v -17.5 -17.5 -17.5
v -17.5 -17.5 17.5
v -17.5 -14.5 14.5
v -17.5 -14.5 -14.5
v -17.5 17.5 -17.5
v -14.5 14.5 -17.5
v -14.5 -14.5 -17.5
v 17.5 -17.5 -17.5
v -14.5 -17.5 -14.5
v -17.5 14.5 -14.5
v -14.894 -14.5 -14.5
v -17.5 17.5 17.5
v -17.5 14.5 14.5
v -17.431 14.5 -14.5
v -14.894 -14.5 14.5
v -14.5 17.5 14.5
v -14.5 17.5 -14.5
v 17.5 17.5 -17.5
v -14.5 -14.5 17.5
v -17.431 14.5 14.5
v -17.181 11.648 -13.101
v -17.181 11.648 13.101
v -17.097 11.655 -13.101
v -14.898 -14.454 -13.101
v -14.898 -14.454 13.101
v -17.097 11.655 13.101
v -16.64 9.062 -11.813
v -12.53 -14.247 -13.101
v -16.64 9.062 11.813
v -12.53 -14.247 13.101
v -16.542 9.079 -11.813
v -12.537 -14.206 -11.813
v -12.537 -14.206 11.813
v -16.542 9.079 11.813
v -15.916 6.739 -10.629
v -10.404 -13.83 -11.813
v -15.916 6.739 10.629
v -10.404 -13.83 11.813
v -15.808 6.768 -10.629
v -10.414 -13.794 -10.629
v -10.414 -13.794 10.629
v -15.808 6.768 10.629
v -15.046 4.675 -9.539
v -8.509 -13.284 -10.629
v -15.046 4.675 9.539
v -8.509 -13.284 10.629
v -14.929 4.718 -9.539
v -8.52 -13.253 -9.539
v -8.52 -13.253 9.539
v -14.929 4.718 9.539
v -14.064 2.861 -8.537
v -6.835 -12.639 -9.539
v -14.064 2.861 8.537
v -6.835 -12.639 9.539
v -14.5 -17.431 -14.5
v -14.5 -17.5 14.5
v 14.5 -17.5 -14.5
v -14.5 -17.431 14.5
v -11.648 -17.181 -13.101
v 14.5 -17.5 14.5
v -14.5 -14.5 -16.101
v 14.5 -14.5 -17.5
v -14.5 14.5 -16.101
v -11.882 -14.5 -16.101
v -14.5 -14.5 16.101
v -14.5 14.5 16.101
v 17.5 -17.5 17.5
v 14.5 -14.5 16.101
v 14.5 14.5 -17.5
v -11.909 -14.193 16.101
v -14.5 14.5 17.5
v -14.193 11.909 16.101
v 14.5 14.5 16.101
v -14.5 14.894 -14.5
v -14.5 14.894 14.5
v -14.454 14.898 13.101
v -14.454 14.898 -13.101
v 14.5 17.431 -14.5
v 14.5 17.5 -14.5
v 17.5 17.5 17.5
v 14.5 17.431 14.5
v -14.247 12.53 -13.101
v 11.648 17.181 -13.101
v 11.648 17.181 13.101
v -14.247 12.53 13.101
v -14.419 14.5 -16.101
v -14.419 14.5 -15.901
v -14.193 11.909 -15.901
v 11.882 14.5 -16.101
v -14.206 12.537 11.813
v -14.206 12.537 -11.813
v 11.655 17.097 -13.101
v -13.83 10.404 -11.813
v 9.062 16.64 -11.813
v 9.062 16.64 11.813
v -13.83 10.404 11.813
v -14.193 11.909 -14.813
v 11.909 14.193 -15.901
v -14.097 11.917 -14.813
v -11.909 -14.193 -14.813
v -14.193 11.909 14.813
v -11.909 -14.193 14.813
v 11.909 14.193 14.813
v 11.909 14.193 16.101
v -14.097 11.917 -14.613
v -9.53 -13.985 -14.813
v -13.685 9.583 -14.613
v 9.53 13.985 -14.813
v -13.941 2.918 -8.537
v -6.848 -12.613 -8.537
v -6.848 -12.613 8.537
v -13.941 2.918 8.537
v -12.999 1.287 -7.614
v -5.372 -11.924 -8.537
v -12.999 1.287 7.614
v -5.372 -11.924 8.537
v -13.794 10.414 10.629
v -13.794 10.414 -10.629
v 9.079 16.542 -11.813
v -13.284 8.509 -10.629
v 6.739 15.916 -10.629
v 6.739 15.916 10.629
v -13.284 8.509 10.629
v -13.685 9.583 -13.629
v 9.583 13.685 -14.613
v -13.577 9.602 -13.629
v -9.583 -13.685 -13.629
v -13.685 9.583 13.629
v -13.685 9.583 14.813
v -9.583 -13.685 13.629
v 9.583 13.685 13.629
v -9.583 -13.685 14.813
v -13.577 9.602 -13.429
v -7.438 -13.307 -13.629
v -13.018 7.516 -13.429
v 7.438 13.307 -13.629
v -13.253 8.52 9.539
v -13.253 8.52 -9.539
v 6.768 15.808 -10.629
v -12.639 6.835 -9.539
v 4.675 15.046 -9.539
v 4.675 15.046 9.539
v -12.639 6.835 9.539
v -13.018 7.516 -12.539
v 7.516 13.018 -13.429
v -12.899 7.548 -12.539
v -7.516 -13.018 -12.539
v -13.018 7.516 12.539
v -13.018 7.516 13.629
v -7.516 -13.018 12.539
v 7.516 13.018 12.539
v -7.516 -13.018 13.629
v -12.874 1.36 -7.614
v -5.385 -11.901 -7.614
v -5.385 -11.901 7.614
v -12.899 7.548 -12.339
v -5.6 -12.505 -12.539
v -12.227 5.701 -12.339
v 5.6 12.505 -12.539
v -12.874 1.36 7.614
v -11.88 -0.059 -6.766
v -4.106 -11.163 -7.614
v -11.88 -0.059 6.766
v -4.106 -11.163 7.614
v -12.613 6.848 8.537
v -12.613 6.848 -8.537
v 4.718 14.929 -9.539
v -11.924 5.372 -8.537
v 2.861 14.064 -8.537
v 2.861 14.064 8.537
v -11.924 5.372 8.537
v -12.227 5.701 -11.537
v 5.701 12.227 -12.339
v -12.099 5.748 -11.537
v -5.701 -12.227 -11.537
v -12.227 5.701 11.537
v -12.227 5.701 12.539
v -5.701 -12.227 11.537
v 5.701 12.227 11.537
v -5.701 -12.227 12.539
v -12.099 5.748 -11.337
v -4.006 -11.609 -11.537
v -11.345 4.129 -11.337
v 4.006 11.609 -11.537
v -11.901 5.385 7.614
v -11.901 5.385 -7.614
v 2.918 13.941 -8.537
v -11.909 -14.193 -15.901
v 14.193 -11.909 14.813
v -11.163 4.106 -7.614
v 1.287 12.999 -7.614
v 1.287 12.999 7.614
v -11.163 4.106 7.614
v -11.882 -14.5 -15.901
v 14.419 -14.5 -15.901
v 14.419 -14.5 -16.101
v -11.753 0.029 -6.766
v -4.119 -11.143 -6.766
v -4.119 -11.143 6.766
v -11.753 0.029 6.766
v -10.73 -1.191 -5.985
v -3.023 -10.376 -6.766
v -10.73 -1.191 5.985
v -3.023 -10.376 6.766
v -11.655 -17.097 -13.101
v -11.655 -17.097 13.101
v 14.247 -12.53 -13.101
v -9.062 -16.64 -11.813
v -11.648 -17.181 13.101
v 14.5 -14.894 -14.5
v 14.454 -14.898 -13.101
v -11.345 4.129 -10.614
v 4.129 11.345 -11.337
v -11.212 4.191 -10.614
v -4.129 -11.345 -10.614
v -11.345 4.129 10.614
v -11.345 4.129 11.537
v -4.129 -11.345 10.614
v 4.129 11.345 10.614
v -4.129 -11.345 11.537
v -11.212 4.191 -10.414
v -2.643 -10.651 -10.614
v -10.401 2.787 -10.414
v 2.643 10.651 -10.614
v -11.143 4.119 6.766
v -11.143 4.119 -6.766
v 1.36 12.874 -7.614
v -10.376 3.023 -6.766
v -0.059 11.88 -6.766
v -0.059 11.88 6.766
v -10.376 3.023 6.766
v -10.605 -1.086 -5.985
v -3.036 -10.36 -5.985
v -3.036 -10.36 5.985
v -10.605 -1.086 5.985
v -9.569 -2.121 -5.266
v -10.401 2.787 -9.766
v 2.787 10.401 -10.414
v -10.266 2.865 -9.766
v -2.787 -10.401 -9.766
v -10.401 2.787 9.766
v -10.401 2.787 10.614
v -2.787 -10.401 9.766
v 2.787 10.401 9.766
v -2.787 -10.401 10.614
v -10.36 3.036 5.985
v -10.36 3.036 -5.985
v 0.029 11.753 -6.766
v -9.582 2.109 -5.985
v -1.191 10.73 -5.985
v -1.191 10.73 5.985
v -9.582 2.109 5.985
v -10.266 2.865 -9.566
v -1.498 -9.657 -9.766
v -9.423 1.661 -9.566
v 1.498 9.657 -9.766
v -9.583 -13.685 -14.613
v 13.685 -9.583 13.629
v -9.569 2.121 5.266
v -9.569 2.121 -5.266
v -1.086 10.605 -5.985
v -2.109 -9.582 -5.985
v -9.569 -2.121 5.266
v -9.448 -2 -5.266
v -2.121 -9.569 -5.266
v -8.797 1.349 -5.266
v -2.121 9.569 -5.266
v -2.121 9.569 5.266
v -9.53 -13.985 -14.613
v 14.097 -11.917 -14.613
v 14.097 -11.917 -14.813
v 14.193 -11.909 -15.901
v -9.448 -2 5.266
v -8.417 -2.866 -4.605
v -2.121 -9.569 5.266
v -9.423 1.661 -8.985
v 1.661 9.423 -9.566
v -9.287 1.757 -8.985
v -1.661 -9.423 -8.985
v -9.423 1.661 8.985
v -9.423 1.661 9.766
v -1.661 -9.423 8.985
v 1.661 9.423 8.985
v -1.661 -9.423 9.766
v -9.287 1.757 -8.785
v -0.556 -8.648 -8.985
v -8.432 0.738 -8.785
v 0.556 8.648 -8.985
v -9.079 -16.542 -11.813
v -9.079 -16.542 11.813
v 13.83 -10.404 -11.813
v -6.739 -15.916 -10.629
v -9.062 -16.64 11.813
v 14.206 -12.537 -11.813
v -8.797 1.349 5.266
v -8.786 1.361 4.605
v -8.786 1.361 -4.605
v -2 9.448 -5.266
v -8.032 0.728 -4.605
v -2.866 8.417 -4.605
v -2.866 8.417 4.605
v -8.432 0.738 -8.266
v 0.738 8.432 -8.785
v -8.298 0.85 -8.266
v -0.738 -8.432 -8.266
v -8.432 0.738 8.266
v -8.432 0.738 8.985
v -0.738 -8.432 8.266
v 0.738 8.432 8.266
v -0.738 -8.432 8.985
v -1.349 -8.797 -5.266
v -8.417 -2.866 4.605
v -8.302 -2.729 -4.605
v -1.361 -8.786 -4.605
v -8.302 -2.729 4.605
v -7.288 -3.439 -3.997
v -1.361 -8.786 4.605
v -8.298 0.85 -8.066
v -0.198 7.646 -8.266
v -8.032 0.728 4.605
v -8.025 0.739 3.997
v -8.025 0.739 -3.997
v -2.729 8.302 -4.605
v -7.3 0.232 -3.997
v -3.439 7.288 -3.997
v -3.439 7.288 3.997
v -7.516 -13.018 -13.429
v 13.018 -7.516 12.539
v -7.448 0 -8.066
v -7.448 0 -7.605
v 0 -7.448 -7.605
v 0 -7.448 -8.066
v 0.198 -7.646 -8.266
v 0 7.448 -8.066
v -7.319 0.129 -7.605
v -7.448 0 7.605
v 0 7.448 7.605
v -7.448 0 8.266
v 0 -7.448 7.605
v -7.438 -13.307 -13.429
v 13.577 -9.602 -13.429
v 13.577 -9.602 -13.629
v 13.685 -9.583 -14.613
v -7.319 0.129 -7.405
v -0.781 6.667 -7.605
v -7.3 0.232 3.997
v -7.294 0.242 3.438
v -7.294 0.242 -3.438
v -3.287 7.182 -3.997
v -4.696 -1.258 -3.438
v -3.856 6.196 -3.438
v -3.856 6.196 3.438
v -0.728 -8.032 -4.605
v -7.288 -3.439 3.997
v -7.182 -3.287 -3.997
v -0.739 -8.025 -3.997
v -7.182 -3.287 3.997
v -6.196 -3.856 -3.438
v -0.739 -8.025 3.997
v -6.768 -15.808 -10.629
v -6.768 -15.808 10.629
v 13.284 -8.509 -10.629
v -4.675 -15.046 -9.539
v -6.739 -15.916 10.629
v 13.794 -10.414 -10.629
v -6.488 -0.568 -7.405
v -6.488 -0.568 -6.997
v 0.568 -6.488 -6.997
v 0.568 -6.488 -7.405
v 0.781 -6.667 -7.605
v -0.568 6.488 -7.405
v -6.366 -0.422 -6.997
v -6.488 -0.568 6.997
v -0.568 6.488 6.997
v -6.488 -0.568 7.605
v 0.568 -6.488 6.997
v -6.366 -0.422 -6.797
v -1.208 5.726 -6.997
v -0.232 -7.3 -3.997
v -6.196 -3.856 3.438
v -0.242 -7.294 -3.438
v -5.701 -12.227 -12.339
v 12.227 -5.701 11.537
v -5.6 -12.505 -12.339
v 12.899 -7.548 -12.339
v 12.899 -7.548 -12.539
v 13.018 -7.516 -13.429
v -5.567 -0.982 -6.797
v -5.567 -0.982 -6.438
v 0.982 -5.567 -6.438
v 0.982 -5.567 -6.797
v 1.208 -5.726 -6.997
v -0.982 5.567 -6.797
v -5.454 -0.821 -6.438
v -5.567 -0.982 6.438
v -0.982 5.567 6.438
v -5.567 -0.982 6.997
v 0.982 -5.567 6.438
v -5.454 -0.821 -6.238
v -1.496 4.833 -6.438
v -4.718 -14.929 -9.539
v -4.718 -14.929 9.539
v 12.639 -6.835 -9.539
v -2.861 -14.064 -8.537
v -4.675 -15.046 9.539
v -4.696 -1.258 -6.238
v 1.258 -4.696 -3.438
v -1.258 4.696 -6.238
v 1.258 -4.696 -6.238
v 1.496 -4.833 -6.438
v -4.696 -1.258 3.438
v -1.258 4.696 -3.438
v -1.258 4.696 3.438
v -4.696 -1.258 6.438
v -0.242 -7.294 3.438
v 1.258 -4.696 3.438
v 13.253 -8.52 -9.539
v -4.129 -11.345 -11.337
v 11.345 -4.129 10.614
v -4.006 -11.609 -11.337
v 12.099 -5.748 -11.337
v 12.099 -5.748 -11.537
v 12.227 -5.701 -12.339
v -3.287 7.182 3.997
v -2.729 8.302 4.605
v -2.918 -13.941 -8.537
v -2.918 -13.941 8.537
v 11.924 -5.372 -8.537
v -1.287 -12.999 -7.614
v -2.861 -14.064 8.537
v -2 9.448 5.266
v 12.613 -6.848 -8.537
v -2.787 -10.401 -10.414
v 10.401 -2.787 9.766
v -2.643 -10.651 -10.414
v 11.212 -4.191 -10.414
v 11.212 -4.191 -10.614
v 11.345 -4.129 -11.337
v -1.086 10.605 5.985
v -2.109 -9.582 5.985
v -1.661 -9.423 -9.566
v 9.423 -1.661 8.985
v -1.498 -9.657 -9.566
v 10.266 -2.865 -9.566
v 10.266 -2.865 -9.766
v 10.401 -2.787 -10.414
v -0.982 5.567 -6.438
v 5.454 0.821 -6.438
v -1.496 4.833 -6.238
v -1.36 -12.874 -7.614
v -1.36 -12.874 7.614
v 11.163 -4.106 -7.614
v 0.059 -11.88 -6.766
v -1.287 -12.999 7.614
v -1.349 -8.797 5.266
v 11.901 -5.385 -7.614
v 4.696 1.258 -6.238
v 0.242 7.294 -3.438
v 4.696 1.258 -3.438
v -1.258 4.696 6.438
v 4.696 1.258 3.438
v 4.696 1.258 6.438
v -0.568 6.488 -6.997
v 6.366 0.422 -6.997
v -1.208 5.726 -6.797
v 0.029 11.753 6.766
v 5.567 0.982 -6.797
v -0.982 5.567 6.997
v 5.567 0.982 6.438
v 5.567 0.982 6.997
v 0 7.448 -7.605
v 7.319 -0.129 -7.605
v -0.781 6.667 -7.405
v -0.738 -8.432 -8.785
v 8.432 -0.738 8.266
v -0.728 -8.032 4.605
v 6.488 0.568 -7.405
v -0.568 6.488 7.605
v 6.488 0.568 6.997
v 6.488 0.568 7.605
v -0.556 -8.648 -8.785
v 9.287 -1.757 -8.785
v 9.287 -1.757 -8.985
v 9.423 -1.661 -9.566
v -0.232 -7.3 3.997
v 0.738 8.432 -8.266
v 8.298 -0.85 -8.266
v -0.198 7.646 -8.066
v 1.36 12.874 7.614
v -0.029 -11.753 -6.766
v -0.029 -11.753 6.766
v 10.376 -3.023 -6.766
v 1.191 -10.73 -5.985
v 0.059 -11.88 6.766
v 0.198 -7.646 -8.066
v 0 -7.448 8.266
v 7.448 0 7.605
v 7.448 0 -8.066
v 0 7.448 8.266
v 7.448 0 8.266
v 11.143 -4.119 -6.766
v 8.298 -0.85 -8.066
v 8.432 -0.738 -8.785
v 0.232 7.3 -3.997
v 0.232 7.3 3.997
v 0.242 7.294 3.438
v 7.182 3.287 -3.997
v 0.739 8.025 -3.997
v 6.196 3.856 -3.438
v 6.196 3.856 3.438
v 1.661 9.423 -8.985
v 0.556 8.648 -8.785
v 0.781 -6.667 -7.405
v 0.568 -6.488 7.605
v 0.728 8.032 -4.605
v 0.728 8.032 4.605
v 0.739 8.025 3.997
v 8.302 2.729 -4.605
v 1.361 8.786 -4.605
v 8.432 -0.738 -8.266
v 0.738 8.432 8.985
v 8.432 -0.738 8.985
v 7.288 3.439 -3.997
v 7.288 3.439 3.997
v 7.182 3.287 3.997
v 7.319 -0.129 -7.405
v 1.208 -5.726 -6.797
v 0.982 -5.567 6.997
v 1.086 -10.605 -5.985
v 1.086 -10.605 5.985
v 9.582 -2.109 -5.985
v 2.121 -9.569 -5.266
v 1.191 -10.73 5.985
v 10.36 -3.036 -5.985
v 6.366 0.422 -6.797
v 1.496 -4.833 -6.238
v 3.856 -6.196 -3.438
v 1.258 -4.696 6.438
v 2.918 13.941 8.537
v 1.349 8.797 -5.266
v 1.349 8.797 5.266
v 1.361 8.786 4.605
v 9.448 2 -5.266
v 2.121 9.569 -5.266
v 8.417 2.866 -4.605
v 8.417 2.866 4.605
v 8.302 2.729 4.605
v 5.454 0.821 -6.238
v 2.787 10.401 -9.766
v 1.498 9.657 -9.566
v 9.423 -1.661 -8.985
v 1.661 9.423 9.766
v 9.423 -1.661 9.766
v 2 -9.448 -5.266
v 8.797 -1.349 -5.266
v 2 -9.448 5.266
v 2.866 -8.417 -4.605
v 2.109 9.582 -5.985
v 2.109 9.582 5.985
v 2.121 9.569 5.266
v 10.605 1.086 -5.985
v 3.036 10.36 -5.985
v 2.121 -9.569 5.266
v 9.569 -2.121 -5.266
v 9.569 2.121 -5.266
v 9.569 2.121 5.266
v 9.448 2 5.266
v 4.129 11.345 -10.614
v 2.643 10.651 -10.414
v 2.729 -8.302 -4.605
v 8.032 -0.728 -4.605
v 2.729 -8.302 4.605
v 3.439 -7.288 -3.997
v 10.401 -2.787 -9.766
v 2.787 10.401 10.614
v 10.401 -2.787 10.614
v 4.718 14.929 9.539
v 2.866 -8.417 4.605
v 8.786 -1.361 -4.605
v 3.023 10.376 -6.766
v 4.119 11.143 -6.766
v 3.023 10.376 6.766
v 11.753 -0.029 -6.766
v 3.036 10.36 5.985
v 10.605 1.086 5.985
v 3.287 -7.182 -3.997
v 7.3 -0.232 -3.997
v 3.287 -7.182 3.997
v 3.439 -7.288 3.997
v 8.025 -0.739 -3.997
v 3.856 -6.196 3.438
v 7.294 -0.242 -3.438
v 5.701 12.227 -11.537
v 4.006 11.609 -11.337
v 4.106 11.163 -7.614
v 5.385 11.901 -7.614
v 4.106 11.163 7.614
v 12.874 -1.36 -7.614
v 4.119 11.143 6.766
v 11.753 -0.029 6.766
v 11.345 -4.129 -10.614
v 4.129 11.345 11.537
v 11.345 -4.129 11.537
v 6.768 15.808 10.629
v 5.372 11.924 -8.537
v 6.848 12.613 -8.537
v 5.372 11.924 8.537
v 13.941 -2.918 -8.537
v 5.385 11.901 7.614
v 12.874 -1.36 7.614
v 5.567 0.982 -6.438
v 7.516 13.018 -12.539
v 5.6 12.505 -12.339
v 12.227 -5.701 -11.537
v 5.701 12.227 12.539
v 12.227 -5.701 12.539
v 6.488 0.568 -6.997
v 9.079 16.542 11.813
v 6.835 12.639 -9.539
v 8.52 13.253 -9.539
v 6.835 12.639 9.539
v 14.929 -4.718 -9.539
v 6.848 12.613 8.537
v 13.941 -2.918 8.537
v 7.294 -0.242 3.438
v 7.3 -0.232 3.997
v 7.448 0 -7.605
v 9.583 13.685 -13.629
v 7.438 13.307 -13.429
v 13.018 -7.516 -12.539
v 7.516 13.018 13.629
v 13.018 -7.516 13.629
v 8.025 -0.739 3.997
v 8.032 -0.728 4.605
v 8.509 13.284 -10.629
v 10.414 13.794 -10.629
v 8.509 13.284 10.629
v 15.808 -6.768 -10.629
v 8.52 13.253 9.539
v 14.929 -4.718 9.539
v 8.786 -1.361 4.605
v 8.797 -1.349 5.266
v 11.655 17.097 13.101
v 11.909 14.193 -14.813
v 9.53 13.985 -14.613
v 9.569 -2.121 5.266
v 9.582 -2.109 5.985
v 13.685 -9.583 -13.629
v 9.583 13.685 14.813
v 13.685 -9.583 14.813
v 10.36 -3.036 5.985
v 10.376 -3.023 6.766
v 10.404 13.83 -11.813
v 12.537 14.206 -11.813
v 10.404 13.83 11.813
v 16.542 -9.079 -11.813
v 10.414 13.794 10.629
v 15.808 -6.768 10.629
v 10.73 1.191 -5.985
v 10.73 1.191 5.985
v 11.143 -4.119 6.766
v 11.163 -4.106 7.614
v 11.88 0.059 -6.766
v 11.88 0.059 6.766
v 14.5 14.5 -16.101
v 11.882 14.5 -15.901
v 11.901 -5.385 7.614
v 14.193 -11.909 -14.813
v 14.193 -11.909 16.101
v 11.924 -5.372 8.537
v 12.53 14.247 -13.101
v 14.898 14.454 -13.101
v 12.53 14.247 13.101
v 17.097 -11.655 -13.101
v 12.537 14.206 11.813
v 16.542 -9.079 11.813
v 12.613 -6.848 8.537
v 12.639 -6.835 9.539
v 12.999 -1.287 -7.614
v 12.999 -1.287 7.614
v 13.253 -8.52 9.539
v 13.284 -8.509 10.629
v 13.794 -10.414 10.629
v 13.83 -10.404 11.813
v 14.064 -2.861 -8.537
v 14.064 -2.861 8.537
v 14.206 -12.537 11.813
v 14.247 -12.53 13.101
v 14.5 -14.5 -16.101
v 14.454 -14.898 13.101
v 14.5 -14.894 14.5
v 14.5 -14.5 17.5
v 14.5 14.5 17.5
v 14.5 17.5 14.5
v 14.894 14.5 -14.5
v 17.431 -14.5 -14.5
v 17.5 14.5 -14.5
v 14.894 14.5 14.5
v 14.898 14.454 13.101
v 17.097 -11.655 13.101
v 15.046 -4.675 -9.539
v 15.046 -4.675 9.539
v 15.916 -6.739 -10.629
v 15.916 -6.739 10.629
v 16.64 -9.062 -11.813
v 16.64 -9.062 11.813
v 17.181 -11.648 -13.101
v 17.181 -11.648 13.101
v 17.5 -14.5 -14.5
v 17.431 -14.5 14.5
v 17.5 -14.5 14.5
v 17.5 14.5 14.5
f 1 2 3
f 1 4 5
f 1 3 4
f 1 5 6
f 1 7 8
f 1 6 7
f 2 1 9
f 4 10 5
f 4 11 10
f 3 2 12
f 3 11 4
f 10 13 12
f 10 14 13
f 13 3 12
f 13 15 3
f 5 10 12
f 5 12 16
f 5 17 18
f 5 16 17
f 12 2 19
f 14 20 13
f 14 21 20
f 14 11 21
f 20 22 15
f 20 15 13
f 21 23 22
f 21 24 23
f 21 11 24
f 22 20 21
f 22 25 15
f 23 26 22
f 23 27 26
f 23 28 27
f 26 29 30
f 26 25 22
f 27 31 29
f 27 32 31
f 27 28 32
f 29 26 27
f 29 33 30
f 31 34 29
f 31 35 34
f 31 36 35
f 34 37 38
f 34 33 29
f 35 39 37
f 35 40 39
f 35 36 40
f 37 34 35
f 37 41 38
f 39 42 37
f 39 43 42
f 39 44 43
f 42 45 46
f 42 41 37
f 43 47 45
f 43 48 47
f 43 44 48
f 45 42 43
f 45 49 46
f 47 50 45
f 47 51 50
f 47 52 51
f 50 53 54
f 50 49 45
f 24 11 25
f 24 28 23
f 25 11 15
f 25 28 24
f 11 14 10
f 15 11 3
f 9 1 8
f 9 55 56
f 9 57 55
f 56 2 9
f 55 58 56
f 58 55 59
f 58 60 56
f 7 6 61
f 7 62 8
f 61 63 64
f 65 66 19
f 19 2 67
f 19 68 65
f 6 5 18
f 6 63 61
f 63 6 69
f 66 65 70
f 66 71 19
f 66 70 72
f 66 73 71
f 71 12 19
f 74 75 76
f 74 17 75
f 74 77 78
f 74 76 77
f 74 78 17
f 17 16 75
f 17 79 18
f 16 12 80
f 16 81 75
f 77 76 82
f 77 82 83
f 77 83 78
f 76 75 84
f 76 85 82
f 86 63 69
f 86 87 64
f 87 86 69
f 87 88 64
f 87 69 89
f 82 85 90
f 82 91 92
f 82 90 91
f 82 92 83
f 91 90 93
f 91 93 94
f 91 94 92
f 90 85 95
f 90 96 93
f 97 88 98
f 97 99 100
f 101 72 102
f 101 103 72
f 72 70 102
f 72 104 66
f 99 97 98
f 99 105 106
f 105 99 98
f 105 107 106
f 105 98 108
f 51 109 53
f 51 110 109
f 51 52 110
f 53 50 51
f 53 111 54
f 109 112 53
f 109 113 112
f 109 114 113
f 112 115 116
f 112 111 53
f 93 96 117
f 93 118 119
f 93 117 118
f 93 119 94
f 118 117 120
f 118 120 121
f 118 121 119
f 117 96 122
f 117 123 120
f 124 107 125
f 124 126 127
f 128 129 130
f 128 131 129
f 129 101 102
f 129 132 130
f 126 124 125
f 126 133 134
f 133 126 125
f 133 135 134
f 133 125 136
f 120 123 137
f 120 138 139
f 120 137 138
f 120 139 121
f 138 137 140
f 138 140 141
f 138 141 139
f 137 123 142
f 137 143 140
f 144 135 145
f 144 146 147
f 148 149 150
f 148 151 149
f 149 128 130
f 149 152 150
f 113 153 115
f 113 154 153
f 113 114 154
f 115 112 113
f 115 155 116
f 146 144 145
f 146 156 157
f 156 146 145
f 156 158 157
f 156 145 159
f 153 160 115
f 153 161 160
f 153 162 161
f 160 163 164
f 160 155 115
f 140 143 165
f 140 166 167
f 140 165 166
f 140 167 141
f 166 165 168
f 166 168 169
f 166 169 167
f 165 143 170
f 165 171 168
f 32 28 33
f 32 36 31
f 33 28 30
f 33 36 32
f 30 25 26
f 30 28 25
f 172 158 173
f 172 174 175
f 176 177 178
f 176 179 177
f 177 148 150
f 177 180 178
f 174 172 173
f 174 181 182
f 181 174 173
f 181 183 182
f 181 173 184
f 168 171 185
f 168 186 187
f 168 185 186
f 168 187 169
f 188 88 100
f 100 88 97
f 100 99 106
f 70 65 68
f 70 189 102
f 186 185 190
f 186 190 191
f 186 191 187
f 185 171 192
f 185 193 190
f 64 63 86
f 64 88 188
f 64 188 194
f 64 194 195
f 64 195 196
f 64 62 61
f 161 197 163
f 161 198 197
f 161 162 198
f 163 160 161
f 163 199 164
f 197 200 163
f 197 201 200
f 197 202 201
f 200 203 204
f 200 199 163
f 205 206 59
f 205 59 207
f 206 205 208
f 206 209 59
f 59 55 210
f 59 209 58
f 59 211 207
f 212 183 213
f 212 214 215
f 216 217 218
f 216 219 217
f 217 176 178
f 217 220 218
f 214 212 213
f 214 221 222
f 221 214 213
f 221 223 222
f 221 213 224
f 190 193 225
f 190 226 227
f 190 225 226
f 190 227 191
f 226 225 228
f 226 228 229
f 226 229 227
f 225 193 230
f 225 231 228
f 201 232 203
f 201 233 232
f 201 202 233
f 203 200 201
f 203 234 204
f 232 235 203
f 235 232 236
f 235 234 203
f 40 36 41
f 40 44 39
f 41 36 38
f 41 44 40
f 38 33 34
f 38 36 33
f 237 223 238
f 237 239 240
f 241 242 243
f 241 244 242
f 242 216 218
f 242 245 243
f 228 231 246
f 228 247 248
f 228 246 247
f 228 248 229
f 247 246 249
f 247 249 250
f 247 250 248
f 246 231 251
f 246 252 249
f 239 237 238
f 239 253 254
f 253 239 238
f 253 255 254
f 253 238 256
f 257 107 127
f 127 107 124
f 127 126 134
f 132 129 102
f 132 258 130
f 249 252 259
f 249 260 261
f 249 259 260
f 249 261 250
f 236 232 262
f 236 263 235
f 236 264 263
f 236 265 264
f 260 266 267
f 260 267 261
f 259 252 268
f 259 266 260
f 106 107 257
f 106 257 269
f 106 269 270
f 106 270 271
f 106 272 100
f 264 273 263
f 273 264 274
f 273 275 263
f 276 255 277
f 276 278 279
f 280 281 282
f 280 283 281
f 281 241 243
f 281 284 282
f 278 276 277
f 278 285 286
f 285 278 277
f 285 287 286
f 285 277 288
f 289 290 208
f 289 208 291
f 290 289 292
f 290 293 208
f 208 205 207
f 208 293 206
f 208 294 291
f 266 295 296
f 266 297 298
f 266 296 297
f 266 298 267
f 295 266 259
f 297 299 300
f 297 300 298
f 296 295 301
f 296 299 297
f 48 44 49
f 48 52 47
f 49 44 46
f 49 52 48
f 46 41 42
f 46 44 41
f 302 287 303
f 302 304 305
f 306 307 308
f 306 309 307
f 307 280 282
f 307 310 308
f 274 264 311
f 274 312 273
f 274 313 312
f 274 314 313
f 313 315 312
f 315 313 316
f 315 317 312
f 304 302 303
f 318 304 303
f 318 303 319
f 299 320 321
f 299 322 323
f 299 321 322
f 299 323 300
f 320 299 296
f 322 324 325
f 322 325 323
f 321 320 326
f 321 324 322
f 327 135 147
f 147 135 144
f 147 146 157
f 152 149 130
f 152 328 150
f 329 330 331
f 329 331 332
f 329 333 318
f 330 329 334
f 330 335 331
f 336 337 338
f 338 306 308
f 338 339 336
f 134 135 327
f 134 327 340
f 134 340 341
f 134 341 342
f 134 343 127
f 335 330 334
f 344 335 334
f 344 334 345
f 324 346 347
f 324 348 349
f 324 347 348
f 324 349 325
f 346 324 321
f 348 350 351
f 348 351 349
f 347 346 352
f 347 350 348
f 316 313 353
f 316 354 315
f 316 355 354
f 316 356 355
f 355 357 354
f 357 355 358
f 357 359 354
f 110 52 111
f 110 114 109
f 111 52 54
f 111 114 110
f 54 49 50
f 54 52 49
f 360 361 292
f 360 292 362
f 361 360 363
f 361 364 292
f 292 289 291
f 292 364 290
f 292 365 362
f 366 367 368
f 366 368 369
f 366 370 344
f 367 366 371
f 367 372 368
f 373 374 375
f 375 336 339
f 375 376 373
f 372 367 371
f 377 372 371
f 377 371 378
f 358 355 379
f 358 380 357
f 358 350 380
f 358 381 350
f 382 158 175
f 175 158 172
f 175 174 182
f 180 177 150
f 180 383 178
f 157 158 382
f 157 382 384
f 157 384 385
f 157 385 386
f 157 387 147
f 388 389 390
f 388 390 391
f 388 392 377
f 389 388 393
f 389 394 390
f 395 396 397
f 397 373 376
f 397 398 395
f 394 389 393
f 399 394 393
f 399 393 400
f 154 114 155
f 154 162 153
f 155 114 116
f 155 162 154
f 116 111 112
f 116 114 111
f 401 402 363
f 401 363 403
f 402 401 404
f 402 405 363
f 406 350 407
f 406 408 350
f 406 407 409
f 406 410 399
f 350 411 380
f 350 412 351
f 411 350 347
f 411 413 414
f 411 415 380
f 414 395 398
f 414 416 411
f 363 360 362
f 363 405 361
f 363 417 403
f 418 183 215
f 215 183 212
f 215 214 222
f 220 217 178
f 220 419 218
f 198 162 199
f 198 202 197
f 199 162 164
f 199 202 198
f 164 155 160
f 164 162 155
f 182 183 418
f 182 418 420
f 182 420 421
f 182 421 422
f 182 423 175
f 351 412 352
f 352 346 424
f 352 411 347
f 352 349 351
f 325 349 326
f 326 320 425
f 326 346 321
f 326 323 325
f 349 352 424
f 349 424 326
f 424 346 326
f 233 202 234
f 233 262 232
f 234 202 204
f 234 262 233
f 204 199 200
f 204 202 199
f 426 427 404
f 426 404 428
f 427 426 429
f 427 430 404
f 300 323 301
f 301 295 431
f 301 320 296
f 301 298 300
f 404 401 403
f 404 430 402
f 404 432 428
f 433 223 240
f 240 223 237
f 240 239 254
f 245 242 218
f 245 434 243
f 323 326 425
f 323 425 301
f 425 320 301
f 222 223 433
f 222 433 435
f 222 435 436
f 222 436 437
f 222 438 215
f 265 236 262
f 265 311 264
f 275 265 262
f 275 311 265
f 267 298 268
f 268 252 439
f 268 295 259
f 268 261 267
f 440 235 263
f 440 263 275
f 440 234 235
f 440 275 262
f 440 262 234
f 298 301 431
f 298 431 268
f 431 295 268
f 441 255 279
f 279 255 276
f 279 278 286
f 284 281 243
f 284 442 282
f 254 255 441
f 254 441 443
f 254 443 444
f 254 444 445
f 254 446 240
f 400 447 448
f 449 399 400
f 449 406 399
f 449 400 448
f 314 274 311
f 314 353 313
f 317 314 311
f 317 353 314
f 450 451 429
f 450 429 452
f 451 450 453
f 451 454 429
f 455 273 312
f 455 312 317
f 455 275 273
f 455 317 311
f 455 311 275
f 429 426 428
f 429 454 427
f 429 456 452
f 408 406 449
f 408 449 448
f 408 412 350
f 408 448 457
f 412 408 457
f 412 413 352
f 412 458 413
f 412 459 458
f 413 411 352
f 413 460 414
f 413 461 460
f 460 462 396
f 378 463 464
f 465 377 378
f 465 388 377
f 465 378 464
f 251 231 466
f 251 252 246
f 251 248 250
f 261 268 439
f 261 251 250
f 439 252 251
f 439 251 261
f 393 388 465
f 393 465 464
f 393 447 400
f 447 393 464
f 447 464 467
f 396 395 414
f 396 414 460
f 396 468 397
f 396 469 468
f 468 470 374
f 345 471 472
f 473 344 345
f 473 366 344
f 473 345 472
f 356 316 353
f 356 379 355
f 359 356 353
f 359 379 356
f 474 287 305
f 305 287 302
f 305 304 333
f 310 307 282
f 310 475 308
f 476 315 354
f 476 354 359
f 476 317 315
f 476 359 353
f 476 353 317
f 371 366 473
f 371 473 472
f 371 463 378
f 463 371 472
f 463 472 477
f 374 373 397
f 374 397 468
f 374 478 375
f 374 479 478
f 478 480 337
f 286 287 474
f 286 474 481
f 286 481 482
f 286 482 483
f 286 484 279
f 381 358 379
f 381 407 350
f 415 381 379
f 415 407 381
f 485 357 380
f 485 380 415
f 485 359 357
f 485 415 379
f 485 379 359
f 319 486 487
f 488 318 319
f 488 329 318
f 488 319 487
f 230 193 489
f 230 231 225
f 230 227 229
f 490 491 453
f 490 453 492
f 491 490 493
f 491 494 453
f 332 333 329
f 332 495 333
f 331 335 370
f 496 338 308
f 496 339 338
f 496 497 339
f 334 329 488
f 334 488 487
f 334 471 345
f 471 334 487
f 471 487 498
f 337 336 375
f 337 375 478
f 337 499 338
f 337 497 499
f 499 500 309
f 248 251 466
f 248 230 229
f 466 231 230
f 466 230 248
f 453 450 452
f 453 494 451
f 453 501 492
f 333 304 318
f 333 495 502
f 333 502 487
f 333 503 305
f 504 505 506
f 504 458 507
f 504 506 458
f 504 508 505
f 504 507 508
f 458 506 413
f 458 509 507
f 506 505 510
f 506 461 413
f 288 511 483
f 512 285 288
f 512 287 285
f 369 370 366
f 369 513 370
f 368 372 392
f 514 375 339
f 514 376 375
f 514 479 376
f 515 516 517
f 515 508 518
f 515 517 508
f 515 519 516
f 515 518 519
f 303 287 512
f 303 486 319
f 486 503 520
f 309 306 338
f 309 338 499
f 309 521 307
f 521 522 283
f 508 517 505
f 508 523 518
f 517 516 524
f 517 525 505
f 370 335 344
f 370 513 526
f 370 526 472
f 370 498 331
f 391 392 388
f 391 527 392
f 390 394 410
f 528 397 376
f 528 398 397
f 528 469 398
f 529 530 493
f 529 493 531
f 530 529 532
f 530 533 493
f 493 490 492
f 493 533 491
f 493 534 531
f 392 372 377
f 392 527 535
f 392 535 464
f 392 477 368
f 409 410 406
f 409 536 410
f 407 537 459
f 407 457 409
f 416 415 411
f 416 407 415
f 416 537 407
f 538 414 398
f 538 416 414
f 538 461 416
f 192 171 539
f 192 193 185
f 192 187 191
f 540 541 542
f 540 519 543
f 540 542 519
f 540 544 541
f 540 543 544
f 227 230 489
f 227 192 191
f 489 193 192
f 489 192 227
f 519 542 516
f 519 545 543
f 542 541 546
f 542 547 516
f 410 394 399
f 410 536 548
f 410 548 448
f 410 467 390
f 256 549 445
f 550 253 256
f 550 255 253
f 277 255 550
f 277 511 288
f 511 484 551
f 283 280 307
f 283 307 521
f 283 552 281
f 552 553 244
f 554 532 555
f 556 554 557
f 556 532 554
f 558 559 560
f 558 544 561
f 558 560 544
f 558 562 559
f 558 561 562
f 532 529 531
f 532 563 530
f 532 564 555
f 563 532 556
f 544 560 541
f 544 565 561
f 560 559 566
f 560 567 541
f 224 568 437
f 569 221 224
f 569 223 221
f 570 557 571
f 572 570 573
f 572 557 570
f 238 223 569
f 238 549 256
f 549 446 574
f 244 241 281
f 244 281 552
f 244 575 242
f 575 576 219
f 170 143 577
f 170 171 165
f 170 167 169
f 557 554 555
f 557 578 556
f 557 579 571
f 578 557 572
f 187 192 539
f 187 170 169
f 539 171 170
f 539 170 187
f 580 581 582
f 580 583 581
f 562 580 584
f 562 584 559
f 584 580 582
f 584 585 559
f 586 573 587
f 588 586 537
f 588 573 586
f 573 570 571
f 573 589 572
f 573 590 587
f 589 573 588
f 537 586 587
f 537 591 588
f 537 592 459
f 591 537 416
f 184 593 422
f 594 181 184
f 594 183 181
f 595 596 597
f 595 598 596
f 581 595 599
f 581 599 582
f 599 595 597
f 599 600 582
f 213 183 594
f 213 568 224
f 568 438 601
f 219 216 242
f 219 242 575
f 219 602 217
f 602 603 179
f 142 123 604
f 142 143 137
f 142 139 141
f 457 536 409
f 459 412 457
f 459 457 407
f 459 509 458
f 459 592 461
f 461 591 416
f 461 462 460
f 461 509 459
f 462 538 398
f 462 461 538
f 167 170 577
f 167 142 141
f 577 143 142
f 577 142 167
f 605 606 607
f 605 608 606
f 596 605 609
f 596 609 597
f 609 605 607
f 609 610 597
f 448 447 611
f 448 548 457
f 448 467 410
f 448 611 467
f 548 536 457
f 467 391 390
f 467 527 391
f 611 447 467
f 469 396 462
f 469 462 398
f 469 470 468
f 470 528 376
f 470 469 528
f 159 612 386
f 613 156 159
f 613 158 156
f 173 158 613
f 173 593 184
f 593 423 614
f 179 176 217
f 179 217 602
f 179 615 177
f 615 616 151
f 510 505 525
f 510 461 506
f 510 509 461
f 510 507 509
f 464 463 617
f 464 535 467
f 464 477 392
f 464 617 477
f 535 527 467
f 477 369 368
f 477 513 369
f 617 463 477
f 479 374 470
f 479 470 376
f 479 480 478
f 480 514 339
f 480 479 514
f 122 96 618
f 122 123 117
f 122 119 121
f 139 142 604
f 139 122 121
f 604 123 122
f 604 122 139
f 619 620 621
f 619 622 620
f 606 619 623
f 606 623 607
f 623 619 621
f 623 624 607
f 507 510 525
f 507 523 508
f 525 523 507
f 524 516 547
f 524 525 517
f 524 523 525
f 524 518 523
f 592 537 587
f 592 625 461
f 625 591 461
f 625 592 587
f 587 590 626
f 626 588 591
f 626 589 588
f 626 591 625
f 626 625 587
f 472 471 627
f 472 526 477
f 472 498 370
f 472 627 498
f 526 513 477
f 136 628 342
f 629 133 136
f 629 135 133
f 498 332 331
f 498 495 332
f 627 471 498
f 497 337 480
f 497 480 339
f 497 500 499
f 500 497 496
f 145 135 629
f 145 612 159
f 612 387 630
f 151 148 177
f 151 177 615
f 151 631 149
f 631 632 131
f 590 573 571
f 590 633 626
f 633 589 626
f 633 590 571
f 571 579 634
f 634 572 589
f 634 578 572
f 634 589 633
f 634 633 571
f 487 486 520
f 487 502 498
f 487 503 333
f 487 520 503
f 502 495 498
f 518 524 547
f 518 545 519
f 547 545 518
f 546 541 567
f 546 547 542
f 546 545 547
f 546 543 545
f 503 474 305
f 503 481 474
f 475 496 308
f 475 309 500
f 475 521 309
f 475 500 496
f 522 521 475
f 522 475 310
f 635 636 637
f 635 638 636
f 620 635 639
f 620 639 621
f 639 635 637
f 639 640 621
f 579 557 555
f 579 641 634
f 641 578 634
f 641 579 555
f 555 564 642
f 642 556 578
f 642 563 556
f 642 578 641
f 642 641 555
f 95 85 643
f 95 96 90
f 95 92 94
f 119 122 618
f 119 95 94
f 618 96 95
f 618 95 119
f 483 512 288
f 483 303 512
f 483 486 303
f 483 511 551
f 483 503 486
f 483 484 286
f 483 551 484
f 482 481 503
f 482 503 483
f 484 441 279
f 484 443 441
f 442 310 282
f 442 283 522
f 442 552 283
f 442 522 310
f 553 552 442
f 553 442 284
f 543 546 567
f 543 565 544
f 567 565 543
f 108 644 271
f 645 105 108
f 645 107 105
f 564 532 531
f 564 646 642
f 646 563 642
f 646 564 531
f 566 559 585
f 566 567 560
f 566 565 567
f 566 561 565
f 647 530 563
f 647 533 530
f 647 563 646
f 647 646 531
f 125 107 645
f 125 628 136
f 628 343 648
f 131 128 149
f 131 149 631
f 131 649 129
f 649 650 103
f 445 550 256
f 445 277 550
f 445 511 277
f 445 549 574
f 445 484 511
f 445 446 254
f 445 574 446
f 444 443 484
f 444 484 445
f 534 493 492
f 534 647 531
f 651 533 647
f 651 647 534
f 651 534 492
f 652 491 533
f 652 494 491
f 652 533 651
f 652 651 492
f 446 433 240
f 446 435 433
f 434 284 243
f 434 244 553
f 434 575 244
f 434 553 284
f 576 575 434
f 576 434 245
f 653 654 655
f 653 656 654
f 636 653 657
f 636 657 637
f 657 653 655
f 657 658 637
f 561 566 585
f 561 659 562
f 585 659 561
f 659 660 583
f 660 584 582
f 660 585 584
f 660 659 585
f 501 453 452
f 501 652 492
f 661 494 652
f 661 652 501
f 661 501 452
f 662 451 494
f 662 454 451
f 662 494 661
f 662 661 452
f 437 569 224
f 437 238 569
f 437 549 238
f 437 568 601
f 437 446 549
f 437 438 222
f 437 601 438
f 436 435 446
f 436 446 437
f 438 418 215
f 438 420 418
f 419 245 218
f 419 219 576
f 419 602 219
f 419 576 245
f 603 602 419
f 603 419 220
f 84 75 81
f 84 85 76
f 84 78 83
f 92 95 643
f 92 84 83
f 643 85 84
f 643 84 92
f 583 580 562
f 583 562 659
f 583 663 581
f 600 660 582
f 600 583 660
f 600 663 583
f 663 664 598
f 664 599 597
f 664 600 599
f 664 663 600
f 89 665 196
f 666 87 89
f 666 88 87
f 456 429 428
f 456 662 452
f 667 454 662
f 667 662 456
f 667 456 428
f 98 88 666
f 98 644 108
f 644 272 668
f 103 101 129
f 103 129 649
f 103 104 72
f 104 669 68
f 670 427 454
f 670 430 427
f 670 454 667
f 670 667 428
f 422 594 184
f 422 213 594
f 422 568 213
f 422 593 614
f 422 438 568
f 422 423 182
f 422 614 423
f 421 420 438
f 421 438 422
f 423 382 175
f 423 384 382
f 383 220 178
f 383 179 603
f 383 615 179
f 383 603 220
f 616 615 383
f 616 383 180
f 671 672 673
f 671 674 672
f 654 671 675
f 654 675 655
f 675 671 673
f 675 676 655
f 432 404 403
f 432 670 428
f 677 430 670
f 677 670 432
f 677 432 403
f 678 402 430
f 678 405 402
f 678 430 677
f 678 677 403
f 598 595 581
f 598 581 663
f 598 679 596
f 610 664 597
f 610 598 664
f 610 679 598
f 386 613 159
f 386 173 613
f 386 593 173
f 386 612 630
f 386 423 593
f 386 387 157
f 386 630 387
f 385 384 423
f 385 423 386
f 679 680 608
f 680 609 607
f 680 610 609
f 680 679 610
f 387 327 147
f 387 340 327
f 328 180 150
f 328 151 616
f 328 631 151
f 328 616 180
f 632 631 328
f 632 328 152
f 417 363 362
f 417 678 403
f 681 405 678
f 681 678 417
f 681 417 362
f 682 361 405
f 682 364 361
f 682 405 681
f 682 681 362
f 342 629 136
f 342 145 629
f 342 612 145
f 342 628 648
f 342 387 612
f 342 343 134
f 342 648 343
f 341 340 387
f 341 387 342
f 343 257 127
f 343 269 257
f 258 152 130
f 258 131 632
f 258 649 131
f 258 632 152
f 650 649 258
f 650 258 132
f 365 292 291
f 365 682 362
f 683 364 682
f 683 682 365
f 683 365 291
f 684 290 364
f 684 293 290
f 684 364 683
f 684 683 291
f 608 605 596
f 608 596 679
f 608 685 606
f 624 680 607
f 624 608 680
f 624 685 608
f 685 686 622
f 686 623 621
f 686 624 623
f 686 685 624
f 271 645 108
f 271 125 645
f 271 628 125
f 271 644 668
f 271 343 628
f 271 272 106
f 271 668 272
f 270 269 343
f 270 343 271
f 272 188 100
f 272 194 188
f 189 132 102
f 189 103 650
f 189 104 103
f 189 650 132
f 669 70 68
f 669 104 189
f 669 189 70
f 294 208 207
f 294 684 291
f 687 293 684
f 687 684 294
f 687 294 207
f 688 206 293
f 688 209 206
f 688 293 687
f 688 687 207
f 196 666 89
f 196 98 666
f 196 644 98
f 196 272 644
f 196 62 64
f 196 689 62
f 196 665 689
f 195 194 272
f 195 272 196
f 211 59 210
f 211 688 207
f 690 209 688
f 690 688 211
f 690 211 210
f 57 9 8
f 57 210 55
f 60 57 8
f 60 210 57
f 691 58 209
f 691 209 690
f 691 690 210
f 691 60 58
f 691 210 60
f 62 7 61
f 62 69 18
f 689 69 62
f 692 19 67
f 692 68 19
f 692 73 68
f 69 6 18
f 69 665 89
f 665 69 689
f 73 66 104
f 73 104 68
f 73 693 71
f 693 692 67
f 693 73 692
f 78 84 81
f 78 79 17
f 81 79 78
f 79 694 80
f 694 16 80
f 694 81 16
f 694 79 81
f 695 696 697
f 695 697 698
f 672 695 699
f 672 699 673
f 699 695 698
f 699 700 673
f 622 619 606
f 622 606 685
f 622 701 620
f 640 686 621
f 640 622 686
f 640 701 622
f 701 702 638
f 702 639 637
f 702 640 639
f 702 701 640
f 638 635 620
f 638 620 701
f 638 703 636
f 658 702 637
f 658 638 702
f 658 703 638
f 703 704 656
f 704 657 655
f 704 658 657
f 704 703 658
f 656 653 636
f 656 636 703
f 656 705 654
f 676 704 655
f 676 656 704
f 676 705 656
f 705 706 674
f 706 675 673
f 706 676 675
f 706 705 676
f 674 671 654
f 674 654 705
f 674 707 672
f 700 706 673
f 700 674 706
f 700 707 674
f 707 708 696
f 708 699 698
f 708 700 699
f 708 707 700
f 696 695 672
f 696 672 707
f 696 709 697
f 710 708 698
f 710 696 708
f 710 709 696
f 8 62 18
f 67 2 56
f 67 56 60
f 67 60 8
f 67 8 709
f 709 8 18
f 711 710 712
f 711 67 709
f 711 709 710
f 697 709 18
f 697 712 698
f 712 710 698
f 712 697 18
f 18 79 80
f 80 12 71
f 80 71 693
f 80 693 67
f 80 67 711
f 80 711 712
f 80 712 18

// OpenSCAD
// Spiral Cube by P. Bauermeister, January 2018
// See https://www.instructables.com/id/OpenSCAD-Tutorial-Spiral-Cube/

WALL_THICKNESS = 3;
SIZE = 35;
STEPS = 12;
TOTAL_ROTATION = 60;
LAYER = 0.2;

module make_cube_edges(size, rotation, must_etch_base) {
    d1 = size - WALL_THICKNESS*2; // to keep walls
    d2 = size + WALL_THICKNESS; // to dig face
    rotate([0, 0, rotation])
    difference() {
        cube([size, size, size], true); // full cube
        cube([d2, d1, d1], true); // dig along X axis
        cube([d1, d2, d1], true); // dig along Y axis
        cube([d1, d1, d2], true); // dig along Z axis

        if (must_etch_base) {
            translate([0, 0, -size/2])
            cube([d1, d2, LAYER*2], true); // dig along Z axis
        }
    }
}

for (i=[0:STEPS]) {
    make_cube_edges(SIZE / exp(i/STEPS), i/STEPS * TOTAL_ROTATION, i>0);
}
